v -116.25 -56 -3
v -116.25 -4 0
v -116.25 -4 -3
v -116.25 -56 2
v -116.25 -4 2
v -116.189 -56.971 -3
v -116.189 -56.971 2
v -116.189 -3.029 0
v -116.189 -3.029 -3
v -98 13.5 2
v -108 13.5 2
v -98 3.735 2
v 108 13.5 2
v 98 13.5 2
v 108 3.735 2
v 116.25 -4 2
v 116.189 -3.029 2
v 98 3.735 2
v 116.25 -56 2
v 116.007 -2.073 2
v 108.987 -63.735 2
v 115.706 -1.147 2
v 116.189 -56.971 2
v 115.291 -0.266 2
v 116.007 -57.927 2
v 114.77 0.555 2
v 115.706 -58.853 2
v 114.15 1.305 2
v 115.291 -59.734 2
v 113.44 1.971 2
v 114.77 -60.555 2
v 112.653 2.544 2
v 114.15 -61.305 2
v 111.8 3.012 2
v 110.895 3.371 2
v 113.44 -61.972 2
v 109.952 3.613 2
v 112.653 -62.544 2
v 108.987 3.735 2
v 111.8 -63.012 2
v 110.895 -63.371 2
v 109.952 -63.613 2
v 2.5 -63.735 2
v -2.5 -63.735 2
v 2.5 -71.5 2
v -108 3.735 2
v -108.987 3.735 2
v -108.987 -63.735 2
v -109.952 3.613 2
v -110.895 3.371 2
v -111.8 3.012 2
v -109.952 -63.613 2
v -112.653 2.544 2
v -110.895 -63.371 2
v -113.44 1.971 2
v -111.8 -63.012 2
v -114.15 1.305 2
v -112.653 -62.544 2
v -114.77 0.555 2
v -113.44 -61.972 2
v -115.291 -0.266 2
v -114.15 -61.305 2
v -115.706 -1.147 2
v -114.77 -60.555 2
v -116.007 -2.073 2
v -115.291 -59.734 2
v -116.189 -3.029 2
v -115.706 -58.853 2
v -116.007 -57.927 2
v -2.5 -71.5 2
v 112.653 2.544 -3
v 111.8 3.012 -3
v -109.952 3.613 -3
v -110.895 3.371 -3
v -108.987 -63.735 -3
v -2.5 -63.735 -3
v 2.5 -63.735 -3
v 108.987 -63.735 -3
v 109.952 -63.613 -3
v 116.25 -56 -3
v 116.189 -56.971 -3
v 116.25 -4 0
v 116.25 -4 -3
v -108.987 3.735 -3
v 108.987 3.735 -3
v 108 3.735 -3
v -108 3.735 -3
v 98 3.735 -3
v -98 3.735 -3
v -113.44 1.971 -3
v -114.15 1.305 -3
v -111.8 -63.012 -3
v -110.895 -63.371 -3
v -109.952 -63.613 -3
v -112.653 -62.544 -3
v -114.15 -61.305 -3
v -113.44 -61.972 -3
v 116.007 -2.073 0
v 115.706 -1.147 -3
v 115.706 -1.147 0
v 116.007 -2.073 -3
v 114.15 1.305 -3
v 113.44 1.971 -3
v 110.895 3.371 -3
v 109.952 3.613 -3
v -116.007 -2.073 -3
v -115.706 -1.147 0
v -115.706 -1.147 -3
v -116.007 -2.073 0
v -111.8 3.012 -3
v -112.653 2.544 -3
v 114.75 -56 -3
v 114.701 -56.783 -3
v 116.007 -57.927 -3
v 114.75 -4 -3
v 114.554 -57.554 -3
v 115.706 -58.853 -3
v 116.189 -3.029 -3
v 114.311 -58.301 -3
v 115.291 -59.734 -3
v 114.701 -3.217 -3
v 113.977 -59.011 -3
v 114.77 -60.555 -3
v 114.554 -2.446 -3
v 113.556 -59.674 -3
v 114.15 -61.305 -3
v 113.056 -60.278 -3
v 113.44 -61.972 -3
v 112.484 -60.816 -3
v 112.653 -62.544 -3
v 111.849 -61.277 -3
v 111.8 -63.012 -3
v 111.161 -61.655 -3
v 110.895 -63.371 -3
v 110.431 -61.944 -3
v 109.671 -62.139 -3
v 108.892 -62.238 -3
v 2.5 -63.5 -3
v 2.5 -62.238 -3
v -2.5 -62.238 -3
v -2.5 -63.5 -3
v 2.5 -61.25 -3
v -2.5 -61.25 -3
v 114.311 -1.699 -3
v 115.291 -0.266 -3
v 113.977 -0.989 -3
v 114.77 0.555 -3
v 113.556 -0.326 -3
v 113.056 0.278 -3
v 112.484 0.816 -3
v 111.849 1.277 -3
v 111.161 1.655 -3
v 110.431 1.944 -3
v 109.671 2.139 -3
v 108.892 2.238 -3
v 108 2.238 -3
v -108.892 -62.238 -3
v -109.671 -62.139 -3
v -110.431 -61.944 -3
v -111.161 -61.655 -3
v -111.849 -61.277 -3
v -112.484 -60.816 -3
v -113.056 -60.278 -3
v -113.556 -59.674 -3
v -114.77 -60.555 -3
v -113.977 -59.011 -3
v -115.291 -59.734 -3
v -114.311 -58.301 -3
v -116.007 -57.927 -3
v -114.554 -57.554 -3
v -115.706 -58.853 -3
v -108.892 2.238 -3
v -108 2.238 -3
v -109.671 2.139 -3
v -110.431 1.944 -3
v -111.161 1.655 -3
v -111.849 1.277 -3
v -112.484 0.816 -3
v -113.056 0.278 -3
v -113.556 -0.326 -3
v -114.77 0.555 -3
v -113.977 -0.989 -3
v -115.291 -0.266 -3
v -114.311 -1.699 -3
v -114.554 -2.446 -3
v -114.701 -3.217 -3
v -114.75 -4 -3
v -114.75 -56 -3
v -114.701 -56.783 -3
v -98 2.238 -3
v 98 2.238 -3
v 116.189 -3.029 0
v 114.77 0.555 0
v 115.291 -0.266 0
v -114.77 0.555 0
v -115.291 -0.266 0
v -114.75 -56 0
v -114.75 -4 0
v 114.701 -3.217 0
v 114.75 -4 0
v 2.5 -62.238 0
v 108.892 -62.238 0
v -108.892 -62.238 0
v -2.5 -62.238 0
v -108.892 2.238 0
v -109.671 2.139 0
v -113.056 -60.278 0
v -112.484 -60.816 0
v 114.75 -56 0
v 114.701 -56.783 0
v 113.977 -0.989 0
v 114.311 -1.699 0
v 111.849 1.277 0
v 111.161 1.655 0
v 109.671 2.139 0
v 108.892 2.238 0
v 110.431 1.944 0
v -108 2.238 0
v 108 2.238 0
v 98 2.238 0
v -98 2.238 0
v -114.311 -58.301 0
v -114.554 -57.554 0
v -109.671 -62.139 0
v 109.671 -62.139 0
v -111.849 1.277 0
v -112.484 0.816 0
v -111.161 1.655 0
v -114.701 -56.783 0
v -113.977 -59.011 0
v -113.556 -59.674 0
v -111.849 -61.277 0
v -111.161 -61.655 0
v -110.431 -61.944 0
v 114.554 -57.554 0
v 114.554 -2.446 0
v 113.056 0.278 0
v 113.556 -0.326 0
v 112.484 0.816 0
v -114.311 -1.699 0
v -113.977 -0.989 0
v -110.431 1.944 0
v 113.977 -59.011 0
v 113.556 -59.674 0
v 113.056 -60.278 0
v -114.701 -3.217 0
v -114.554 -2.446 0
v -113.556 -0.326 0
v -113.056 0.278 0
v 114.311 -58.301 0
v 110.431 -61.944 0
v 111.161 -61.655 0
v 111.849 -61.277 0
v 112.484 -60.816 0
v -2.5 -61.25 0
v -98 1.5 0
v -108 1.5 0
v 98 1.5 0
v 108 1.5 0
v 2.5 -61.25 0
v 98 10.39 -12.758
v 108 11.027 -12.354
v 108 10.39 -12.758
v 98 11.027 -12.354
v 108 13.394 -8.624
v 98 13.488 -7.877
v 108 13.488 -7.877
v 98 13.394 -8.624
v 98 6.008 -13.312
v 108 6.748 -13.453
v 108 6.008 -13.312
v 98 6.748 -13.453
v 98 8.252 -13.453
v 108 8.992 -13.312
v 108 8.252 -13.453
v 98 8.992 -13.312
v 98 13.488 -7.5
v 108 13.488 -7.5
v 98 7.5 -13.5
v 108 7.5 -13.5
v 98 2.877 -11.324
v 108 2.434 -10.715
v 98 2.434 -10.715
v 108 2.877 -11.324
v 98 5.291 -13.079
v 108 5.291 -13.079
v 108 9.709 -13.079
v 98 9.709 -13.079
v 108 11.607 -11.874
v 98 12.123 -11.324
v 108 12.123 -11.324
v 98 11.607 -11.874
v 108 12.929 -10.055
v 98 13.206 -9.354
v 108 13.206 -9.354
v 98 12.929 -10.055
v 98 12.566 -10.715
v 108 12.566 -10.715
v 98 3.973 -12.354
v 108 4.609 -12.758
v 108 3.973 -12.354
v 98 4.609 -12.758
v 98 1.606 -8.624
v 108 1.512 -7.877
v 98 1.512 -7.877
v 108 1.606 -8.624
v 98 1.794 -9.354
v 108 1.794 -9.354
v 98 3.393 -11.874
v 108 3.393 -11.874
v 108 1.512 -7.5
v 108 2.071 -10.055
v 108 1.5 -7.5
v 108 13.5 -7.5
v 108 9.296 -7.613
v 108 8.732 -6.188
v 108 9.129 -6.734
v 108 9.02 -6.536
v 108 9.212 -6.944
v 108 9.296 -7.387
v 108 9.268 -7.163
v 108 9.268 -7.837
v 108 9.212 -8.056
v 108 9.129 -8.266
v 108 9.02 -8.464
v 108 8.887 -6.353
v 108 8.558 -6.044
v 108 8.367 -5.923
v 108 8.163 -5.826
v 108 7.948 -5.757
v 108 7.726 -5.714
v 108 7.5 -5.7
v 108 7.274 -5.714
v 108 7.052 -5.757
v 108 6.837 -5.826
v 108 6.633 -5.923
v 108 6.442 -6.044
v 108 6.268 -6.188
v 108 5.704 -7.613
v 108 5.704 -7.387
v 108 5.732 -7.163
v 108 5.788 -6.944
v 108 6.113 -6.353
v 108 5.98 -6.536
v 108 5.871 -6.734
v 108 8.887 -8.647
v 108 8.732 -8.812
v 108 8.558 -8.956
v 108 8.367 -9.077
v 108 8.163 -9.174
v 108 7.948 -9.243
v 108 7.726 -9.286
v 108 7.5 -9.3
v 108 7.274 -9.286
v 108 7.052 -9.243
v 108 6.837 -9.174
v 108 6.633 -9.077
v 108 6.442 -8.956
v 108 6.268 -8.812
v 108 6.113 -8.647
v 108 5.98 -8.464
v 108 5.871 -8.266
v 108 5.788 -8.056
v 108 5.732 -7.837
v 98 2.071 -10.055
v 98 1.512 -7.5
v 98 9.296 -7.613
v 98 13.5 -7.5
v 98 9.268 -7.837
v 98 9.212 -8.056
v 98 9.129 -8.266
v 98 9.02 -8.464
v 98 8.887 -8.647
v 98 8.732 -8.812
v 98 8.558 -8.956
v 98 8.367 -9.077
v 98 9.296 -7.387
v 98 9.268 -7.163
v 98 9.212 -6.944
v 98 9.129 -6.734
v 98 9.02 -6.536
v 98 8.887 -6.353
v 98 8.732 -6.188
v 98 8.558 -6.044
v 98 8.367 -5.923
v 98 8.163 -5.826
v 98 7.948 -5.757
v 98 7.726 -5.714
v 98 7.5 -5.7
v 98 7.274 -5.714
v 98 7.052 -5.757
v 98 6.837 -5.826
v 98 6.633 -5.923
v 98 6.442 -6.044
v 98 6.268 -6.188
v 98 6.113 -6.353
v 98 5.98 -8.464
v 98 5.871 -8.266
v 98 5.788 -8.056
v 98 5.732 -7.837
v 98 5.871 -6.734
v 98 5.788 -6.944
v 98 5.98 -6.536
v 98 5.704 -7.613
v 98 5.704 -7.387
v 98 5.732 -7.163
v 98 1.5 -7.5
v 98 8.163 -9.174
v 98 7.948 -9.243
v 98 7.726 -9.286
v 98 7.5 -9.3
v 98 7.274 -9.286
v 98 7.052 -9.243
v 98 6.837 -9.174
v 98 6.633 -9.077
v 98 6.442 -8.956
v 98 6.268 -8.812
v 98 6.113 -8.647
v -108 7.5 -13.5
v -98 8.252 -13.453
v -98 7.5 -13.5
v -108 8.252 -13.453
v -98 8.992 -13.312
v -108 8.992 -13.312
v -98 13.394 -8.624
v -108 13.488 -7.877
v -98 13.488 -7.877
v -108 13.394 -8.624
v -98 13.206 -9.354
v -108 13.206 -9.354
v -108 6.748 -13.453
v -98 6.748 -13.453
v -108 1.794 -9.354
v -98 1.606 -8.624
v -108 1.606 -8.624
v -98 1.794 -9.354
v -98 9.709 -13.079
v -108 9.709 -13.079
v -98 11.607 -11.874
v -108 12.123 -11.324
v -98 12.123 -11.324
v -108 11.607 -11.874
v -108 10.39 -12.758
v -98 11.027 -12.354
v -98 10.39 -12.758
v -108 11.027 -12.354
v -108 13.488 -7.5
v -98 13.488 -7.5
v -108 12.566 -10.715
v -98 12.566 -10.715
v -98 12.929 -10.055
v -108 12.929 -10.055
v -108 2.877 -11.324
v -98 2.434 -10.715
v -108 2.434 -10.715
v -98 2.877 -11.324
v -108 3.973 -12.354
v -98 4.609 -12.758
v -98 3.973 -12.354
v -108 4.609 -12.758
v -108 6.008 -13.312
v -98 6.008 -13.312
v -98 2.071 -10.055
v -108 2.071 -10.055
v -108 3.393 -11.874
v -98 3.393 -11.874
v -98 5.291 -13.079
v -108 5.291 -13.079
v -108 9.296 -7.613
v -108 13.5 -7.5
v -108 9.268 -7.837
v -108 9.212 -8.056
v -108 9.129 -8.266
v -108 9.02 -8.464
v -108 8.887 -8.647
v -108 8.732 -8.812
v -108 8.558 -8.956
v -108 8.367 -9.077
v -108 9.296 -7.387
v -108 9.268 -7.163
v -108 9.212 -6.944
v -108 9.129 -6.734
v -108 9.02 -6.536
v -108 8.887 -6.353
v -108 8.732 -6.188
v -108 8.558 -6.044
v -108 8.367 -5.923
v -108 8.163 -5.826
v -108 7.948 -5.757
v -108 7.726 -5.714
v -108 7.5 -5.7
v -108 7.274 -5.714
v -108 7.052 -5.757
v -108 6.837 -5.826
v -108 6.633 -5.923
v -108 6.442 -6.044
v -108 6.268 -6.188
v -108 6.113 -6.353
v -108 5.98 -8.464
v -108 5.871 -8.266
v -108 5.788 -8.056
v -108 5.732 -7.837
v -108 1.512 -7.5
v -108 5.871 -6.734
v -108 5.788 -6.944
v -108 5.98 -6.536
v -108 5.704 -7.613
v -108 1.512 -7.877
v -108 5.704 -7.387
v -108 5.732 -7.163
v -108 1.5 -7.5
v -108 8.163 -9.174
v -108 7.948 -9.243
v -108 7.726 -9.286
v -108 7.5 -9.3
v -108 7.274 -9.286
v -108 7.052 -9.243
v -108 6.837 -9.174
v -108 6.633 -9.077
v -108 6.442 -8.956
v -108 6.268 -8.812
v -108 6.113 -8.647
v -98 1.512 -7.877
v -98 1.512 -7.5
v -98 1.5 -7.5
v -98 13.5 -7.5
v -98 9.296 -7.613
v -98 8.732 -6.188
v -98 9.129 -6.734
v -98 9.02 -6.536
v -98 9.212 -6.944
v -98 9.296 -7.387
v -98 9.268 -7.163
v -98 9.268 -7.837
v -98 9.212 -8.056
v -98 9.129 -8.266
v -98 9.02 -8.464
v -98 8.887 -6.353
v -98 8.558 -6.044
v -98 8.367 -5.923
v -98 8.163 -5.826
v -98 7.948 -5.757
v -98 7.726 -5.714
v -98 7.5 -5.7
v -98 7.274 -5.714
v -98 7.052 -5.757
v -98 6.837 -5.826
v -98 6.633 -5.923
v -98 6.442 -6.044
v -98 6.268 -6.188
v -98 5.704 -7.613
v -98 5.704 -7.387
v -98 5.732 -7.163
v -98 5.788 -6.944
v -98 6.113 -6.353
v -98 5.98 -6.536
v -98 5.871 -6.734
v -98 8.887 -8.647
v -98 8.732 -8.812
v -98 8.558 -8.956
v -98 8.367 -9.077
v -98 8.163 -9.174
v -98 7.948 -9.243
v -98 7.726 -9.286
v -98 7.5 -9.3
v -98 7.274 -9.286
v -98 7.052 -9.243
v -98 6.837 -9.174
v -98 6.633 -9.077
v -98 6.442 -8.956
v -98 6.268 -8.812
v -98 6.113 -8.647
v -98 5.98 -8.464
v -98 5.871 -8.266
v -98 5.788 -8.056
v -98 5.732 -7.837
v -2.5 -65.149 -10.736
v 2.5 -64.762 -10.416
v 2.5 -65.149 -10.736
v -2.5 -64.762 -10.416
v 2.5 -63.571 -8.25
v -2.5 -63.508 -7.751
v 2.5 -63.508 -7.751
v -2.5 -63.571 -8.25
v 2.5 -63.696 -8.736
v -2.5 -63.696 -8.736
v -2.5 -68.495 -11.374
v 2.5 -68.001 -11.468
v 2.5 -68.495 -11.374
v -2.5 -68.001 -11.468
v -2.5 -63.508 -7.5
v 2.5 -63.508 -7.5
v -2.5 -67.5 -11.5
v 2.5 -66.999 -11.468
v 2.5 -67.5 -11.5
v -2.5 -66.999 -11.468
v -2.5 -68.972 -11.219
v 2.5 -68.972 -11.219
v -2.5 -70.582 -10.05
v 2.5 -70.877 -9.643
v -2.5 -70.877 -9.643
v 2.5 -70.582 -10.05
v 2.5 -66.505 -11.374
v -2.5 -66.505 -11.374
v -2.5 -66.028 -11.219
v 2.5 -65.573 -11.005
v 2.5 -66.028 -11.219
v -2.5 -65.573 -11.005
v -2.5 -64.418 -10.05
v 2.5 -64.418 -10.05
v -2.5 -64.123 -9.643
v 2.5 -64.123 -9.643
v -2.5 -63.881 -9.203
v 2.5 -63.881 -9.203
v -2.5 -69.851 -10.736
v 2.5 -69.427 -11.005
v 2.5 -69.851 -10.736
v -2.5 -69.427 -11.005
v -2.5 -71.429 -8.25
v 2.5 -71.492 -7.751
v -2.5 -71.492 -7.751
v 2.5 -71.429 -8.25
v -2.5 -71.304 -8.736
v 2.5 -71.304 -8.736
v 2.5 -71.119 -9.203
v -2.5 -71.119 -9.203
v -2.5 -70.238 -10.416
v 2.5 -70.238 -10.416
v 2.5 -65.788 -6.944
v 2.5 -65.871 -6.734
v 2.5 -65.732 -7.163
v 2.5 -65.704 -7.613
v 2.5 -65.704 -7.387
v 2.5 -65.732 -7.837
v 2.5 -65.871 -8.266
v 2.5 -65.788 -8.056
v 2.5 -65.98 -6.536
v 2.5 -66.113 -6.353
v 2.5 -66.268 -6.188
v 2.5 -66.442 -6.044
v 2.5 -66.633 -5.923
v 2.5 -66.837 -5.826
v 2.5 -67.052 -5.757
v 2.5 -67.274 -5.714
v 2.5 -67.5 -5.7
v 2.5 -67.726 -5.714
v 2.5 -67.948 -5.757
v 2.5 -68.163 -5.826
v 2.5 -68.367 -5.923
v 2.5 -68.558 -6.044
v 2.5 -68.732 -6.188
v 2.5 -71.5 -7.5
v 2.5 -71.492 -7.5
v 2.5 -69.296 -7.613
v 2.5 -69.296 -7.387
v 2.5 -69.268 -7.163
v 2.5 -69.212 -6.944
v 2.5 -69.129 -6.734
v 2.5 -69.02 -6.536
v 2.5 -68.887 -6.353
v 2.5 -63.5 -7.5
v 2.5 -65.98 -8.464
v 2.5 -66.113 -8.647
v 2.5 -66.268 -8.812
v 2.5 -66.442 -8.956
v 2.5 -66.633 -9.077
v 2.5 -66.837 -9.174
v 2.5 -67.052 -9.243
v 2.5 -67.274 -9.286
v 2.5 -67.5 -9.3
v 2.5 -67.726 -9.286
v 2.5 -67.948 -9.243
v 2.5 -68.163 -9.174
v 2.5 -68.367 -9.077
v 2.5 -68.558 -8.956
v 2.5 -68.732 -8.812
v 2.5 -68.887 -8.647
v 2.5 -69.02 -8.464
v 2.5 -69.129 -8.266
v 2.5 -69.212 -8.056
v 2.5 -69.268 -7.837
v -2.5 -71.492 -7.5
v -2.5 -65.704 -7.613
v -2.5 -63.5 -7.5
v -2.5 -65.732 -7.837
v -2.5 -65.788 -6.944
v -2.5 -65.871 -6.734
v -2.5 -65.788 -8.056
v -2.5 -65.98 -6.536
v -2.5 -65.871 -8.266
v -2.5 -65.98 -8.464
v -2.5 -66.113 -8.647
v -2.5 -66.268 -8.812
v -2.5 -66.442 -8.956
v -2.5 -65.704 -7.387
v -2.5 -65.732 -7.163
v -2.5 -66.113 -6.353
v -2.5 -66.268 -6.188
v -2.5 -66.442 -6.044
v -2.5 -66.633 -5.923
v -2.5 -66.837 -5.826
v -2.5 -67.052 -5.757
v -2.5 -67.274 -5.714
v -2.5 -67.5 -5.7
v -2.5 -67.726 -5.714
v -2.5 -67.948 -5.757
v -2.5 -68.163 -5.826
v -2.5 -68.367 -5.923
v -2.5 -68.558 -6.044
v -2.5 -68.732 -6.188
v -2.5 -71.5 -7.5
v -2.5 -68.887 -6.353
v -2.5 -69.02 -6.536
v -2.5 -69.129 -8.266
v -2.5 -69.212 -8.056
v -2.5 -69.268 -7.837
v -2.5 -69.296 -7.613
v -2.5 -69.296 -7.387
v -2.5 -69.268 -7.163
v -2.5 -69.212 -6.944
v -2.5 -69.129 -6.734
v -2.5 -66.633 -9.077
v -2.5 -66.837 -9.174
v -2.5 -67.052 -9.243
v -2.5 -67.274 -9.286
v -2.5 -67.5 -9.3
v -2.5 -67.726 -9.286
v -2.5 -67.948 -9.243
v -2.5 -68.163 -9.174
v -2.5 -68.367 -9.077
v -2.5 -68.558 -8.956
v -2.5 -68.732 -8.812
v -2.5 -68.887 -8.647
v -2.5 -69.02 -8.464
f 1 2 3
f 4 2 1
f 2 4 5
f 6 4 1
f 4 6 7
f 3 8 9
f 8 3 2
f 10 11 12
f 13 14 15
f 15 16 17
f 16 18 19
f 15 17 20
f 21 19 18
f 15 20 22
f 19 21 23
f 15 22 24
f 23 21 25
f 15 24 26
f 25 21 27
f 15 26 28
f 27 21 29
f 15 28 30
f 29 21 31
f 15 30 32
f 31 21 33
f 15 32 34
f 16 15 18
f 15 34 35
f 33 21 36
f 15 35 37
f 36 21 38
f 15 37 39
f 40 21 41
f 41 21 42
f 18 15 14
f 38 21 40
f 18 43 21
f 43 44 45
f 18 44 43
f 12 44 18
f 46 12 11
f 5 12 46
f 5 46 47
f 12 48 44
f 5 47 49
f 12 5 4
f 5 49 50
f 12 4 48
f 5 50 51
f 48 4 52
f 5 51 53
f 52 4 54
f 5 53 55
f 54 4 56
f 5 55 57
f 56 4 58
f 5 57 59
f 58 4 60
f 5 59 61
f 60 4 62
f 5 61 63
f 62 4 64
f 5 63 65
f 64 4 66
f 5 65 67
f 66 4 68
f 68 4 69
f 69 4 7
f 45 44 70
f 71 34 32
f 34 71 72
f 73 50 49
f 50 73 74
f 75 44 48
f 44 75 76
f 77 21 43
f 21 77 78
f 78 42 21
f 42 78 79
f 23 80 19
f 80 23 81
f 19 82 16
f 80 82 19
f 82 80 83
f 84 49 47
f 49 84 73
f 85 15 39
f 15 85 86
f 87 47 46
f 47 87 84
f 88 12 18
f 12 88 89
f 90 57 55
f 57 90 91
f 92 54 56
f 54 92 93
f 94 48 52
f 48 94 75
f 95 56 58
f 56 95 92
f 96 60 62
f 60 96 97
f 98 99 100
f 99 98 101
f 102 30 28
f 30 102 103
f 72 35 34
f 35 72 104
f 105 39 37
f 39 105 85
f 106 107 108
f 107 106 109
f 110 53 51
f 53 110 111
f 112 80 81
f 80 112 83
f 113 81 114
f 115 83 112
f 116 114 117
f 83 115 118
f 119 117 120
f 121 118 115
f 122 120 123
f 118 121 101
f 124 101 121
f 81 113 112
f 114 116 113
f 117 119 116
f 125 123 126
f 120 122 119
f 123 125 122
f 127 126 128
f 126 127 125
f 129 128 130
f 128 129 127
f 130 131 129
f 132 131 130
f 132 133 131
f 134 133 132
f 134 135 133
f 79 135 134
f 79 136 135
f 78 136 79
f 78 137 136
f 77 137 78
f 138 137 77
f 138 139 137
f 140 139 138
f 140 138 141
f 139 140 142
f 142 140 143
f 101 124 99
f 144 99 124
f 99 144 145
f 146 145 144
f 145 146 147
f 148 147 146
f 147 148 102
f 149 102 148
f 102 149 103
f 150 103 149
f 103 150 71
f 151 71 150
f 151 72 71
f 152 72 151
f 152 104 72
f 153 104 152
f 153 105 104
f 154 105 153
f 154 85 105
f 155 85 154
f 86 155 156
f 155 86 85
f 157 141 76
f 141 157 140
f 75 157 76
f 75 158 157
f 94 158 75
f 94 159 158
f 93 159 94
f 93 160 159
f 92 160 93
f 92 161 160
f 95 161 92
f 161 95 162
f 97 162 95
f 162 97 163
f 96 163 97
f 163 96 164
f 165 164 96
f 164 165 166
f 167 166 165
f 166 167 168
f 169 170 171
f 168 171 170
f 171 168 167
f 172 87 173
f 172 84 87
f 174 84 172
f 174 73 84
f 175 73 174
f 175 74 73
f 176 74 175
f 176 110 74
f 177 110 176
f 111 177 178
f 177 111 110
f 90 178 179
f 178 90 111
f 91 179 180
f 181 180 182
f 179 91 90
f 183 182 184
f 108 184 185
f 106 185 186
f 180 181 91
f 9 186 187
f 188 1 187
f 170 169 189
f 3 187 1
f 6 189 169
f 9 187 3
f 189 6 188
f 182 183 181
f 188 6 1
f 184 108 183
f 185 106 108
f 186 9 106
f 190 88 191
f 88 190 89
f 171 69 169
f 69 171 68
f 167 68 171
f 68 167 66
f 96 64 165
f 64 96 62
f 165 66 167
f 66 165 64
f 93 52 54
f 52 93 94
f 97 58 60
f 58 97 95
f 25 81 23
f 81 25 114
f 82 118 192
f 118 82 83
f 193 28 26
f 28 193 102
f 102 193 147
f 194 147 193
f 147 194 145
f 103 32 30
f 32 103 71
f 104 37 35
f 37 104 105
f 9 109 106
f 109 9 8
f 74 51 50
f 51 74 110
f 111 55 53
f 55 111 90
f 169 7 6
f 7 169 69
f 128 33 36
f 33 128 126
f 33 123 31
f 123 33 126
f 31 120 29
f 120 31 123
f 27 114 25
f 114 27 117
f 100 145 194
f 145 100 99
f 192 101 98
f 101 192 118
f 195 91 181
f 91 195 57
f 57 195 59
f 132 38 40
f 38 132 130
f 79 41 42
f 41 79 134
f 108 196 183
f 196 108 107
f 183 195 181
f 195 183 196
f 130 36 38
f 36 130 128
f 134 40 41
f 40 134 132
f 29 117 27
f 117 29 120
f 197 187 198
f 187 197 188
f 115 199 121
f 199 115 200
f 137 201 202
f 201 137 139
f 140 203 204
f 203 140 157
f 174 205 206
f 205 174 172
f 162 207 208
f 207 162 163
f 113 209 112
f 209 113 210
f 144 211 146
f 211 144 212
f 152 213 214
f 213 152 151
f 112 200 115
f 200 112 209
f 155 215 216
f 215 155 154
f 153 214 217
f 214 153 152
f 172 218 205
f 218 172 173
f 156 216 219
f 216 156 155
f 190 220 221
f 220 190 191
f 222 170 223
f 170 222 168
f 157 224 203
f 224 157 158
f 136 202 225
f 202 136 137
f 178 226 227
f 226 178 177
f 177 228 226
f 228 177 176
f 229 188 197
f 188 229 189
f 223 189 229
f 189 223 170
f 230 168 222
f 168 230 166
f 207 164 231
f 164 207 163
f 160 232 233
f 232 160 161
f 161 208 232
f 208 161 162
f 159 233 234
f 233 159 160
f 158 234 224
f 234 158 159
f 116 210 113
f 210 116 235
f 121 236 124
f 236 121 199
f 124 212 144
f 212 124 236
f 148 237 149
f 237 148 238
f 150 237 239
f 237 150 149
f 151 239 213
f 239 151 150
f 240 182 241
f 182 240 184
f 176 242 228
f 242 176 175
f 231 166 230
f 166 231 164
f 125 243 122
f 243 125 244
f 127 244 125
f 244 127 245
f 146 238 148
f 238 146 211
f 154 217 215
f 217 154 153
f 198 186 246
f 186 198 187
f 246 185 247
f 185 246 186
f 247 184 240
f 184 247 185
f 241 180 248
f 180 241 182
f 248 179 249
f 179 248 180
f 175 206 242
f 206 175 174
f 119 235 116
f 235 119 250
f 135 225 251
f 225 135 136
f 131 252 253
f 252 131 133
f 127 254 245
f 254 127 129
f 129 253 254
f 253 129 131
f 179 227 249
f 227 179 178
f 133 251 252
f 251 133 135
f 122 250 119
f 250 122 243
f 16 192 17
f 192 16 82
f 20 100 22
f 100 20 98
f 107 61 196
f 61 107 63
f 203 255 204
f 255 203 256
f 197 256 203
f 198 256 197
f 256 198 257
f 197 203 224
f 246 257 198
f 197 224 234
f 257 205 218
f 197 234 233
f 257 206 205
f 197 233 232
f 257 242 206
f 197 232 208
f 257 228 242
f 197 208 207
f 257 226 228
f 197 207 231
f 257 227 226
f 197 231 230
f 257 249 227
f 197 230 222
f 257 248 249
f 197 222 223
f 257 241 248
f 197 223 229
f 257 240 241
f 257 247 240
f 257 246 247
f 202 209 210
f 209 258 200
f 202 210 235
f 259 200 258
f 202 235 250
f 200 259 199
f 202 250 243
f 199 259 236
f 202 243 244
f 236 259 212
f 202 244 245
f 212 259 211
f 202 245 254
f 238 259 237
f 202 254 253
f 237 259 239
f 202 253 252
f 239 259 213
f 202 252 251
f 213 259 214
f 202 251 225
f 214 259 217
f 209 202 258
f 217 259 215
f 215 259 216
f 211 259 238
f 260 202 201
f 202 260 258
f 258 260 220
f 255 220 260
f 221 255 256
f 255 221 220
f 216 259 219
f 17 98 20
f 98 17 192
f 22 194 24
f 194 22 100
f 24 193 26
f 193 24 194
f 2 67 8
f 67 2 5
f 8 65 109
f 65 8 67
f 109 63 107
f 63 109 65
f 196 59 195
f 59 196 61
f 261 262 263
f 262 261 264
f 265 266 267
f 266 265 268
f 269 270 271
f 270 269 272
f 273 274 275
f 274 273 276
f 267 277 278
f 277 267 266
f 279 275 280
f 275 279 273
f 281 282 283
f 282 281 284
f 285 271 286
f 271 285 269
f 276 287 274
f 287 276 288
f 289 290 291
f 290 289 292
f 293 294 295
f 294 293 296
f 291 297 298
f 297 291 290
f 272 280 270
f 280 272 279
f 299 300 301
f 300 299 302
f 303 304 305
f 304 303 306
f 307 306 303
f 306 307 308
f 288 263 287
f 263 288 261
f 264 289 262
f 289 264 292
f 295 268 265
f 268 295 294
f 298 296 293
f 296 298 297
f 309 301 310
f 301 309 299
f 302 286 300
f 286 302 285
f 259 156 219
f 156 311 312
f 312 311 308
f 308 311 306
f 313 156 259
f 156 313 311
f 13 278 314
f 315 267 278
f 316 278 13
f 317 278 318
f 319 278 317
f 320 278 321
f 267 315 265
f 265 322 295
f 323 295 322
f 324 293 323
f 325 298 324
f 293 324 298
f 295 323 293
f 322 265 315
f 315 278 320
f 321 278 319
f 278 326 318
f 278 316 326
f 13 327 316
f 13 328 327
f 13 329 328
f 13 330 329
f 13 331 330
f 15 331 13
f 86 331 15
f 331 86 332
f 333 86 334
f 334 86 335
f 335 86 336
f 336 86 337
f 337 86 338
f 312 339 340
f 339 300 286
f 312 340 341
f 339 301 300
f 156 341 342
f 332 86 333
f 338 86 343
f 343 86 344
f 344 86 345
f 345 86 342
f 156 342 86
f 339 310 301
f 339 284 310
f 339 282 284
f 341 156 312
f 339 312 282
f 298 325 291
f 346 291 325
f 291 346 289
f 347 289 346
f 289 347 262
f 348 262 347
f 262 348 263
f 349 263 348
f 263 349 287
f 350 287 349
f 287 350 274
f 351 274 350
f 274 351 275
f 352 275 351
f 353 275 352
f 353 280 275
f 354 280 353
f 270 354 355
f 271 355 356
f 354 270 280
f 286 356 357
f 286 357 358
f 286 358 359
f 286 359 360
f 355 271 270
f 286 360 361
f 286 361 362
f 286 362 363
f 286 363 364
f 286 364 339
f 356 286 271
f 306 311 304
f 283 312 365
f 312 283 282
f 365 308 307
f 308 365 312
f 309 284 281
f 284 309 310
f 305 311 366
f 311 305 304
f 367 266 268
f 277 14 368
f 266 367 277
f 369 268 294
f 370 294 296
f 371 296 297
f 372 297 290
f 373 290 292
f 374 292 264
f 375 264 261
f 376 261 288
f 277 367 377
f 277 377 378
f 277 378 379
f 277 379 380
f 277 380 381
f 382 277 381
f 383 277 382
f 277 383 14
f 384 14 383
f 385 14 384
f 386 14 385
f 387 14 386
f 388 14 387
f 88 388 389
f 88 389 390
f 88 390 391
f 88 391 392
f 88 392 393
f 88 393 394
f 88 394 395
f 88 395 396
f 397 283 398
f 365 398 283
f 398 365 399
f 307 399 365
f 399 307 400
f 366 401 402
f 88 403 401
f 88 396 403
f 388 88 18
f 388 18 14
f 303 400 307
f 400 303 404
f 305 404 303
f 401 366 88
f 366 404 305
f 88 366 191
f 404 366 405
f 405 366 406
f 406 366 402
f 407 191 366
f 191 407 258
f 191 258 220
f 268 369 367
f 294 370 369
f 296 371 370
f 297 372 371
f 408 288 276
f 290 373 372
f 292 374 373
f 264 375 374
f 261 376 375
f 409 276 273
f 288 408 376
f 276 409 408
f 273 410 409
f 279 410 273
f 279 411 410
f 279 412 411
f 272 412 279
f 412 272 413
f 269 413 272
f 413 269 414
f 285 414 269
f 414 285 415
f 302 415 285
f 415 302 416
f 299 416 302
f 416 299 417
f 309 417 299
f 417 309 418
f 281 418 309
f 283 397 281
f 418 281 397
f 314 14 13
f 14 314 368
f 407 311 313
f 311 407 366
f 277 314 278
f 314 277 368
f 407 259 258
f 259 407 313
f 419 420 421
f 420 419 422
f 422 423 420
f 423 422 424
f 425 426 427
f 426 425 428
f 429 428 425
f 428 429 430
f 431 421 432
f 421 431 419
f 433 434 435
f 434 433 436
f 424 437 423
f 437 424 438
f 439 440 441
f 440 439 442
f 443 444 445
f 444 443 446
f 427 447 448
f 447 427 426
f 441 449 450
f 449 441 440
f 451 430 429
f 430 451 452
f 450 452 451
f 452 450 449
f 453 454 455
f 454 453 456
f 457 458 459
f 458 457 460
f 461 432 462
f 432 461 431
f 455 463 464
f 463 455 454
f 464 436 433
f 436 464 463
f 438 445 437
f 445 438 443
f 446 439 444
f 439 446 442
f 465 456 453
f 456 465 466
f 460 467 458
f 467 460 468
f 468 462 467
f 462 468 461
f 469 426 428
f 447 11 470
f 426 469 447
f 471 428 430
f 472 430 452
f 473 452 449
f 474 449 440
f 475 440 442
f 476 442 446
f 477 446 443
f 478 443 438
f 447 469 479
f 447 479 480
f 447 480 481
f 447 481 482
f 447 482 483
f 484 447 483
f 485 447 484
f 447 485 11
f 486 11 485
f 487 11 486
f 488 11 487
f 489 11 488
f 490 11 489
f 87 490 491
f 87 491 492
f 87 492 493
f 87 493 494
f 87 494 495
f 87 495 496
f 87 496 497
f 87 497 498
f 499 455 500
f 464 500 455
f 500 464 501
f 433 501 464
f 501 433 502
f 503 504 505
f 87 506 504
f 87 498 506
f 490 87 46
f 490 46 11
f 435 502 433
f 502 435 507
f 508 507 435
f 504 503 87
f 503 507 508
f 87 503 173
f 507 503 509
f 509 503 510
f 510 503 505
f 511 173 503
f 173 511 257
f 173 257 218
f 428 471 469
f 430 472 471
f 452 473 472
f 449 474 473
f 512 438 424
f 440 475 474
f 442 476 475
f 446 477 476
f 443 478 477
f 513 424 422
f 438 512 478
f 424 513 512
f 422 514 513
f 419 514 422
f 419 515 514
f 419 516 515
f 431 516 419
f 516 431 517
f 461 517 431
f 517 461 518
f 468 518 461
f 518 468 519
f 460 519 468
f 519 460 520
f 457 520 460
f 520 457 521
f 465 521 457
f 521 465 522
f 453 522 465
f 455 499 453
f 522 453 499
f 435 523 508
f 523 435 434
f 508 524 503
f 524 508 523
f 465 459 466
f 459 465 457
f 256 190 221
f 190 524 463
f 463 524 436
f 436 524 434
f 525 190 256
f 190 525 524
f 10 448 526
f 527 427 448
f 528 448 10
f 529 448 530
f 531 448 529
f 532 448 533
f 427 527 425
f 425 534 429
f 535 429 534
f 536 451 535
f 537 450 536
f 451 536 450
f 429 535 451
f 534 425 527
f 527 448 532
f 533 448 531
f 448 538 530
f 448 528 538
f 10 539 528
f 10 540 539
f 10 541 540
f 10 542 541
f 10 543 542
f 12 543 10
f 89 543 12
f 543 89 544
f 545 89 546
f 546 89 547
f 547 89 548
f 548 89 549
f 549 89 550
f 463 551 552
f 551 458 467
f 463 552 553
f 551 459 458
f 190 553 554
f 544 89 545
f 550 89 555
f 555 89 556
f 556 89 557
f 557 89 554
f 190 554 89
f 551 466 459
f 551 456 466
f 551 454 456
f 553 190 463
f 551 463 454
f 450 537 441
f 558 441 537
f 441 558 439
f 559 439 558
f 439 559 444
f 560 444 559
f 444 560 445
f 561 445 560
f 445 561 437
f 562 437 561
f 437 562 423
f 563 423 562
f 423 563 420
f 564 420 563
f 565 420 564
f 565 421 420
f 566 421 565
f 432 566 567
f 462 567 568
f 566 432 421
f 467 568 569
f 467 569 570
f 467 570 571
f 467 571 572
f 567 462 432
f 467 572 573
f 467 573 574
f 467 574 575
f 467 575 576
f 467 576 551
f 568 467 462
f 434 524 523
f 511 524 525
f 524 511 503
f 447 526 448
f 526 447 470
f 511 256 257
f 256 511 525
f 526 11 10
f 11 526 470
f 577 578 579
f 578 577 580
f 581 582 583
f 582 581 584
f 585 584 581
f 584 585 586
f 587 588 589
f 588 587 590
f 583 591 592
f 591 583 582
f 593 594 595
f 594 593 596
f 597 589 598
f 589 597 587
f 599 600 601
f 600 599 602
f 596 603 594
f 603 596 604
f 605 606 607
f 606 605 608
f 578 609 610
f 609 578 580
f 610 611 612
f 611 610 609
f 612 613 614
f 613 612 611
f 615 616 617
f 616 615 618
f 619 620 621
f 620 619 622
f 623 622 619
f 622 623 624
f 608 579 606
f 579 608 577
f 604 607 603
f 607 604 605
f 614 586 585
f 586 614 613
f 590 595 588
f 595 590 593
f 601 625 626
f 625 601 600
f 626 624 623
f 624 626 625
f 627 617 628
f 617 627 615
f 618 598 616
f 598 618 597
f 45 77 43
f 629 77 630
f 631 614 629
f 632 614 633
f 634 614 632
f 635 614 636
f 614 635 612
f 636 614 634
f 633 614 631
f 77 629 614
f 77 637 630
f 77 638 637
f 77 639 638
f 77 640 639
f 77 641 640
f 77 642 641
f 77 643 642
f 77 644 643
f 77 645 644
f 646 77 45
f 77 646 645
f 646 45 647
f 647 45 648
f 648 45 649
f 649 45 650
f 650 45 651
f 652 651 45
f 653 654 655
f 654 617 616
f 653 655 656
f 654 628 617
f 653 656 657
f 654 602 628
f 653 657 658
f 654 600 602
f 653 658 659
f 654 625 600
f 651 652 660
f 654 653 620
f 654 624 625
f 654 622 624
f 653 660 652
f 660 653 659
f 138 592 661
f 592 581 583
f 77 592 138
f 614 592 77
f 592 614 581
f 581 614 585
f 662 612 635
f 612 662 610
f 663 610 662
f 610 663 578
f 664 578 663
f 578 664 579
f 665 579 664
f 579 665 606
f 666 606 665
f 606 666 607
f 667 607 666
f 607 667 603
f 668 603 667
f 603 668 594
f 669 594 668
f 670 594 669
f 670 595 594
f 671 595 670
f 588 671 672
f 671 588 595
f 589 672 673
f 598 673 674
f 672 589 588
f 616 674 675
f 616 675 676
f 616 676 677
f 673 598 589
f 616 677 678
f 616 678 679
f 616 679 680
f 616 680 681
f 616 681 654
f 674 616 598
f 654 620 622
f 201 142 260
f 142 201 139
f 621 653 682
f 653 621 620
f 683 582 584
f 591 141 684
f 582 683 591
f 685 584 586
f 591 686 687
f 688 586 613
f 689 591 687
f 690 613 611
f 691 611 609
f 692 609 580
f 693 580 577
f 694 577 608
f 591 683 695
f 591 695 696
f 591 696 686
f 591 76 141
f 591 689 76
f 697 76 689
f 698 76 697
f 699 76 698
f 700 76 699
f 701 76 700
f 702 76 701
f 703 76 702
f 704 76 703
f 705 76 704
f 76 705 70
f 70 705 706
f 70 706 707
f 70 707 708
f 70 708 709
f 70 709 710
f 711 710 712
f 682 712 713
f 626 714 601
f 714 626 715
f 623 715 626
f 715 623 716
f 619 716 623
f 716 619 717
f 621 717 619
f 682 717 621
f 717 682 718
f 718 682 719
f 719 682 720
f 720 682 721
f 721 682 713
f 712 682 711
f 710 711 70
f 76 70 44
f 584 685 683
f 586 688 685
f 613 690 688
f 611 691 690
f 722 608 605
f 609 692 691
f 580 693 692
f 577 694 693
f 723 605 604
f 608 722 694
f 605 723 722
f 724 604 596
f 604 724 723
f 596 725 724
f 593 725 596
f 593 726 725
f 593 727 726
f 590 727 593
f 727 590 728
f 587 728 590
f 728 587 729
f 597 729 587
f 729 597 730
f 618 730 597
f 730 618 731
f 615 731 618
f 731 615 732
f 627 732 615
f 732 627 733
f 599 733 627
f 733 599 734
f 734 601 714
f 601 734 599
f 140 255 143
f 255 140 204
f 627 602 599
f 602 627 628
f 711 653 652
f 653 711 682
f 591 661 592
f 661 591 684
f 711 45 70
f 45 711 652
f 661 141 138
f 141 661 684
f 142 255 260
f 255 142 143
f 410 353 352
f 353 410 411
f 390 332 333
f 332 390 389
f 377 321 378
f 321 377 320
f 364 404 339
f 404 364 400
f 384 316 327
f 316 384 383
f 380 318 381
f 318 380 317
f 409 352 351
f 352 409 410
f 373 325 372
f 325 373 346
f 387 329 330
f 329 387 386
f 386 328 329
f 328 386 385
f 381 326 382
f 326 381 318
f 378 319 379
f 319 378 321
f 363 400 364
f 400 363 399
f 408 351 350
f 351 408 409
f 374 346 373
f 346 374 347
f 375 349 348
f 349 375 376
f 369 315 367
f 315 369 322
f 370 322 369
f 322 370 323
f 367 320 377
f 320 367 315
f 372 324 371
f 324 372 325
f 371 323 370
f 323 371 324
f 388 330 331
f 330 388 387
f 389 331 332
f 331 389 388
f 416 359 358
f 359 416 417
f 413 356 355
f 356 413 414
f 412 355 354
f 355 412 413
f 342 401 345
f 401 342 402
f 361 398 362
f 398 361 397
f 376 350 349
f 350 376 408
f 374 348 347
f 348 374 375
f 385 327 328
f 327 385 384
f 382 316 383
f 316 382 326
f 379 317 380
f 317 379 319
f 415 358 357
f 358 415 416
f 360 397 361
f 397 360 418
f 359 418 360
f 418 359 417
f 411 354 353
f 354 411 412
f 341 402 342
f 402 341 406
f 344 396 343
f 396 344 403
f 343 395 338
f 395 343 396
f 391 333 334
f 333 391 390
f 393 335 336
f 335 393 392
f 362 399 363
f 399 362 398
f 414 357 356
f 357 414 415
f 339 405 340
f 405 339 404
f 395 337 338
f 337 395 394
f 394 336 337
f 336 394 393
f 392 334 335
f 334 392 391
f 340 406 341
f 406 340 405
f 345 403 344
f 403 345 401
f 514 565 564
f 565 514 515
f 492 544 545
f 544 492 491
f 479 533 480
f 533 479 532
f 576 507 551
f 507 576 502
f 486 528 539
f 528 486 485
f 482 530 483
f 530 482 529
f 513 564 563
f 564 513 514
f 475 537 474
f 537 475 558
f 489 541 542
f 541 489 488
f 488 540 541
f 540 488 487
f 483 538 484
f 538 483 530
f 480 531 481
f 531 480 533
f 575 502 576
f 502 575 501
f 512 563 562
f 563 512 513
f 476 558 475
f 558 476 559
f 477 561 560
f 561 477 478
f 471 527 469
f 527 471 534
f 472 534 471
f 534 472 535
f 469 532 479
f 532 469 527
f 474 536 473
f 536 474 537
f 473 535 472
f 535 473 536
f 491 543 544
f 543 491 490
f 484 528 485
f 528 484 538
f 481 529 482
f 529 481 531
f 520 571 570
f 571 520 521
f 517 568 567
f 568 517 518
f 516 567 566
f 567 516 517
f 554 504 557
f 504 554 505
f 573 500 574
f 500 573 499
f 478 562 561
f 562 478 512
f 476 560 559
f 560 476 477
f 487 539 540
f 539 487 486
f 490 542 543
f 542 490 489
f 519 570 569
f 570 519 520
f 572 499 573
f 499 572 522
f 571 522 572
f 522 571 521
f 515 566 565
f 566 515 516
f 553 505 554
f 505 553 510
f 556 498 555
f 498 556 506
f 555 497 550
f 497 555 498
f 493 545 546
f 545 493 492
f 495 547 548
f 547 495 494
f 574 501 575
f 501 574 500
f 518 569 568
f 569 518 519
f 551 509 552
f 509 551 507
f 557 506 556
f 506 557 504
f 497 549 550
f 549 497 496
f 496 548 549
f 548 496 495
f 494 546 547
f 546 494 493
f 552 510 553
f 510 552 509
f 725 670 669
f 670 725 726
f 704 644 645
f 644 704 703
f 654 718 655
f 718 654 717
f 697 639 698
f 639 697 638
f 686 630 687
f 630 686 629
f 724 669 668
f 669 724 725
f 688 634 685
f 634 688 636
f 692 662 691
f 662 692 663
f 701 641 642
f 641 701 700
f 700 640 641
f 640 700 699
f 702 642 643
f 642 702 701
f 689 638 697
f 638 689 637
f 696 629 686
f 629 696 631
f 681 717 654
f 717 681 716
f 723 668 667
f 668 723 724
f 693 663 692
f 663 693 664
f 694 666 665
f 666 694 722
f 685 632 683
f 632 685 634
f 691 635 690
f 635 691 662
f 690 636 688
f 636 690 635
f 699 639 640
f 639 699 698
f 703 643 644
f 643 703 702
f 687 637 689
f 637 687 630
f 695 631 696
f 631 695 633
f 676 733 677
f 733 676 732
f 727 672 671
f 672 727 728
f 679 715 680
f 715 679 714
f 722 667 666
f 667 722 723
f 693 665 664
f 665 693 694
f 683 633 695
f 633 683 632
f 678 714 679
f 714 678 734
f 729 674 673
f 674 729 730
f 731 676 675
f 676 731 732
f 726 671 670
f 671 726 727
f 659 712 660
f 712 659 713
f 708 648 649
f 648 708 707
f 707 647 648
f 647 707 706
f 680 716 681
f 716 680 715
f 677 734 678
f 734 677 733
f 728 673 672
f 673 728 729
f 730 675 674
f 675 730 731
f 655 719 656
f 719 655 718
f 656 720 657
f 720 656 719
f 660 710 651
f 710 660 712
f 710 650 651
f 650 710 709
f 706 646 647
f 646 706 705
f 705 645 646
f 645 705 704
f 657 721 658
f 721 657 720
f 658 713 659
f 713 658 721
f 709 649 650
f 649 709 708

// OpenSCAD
$fn = 50;


difference() {
	union() {
		translate(v = [0, -30.0000000000, -3]) {
			rotate(a = [0, 0, 0]) {
				difference() {
					union() {
						hull() {
							translate(v = [-108.5000000000, 26.0000000000, 0]) {
								cylinder(h = 5, r = 7.7500000000);
							}
							translate(v = [108.5000000000, 26.0000000000, 0]) {
								cylinder(h = 5, r = 7.7500000000);
							}
							translate(v = [-108.5000000000, -26.0000000000, 0]) {
								cylinder(h = 5, r = 7.7500000000);
							}
							translate(v = [108.5000000000, -26.0000000000, 0]) {
								cylinder(h = 5, r = 7.7500000000);
							}
						}
					}
					union() {
						hull() {
							translate(v = [-108.5000000000, 26.0000000000, 0]) {
								cylinder(h = 5, r = 6.2500000000);
							}
							translate(v = [108.5000000000, 26.0000000000, 0]) {
								cylinder(h = 5, r = 6.2500000000);
							}
							translate(v = [-108.5000000000, -26.0000000000, 0]) {
								cylinder(h = 5, r = 6.2500000000);
							}
							translate(v = [108.5000000000, -26.0000000000, 0]) {
								cylinder(h = 5, r = 6.2500000000);
							}
						}
					}
				}
			}
		}
		translate(v = [0, -30.0000000000, 0]) {
			hull() {
				translate(v = [-108.5000000000, 26.0000000000, 0]) {
					cylinder(h = 2, r = 7.7500000000);
				}
				translate(v = [108.5000000000, 26.0000000000, 0]) {
					cylinder(h = 2, r = 7.7500000000);
				}
				translate(v = [-108.5000000000, -26.0000000000, 0]) {
					cylinder(h = 2, r = 7.7500000000);
				}
				translate(v = [108.5000000000, -26.0000000000, 0]) {
					cylinder(h = 2, r = 7.7500000000);
				}
			}
		}
		translate(v = [98.0000000000, 7.5000000000, -7.5000000000]) {
			rotate(a = [0, 90, 0]) {
				cylinder(h = 10, r = 6.0000000000);
			}
		}
		translate(v = [98.0000000000, 1.5000000000, -7.5000000000]) {
			cube(size = [10, 12, 7.5000000000]);
		}
		translate(v = [98.0000000000, -15.0000000000, 0.0000000000]) {
			cube(size = [10, 28.5000000000, 2]);
		}
		translate(v = [-108.0000000000, 7.5000000000, -7.5000000000]) {
			rotate(a = [0, 90, 0]) {
				cylinder(h = 10, r = 6.0000000000);
			}
		}
		translate(v = [-108.0000000000, 1.5000000000, -7.5000000000]) {
			cube(size = [10, 12, 7.5000000000]);
		}
		translate(v = [-108.0000000000, -15.0000000000, 0.0000000000]) {
			cube(size = [10, 28.5000000000, 2]);
		}
		translate(v = [-2.5000000000, -67.5000000000, -7.5000000000]) {
			rotate(a = [0, 90, 0]) {
				cylinder(h = 5, r = 4.0000000000);
			}
		}
		translate(v = [-2.5000000000, -71.5000000000, -7.5000000000]) {
			cube(size = [5, 8, 7.5000000000]);
		}
		translate(v = [-2.5000000000, -71.5000000000, -3.0000000000]) {
			cube(size = [5, 10.2500000000, 5]);
		}
	}
	union() {
		translate(v = [98.0000000000, 7.5000000000, -7.5000000000]) {
			rotate(a = [0, 90, 0]) {
				cylinder(h = 10, r = 1.8000000000);
			}
		}
		translate(v = [-108.0000000000, 7.5000000000, -7.5000000000]) {
			rotate(a = [0, 90, 0]) {
				cylinder(h = 10, r = 1.8000000000);
			}
		}
		translate(v = [-5.0000000000, -67.5000000000, -7.5000000000]) {
			rotate(a = [0, 90, 0]) {
				cylinder(h = 10, r = 1.8000000000);
			}
		}
	}
}
